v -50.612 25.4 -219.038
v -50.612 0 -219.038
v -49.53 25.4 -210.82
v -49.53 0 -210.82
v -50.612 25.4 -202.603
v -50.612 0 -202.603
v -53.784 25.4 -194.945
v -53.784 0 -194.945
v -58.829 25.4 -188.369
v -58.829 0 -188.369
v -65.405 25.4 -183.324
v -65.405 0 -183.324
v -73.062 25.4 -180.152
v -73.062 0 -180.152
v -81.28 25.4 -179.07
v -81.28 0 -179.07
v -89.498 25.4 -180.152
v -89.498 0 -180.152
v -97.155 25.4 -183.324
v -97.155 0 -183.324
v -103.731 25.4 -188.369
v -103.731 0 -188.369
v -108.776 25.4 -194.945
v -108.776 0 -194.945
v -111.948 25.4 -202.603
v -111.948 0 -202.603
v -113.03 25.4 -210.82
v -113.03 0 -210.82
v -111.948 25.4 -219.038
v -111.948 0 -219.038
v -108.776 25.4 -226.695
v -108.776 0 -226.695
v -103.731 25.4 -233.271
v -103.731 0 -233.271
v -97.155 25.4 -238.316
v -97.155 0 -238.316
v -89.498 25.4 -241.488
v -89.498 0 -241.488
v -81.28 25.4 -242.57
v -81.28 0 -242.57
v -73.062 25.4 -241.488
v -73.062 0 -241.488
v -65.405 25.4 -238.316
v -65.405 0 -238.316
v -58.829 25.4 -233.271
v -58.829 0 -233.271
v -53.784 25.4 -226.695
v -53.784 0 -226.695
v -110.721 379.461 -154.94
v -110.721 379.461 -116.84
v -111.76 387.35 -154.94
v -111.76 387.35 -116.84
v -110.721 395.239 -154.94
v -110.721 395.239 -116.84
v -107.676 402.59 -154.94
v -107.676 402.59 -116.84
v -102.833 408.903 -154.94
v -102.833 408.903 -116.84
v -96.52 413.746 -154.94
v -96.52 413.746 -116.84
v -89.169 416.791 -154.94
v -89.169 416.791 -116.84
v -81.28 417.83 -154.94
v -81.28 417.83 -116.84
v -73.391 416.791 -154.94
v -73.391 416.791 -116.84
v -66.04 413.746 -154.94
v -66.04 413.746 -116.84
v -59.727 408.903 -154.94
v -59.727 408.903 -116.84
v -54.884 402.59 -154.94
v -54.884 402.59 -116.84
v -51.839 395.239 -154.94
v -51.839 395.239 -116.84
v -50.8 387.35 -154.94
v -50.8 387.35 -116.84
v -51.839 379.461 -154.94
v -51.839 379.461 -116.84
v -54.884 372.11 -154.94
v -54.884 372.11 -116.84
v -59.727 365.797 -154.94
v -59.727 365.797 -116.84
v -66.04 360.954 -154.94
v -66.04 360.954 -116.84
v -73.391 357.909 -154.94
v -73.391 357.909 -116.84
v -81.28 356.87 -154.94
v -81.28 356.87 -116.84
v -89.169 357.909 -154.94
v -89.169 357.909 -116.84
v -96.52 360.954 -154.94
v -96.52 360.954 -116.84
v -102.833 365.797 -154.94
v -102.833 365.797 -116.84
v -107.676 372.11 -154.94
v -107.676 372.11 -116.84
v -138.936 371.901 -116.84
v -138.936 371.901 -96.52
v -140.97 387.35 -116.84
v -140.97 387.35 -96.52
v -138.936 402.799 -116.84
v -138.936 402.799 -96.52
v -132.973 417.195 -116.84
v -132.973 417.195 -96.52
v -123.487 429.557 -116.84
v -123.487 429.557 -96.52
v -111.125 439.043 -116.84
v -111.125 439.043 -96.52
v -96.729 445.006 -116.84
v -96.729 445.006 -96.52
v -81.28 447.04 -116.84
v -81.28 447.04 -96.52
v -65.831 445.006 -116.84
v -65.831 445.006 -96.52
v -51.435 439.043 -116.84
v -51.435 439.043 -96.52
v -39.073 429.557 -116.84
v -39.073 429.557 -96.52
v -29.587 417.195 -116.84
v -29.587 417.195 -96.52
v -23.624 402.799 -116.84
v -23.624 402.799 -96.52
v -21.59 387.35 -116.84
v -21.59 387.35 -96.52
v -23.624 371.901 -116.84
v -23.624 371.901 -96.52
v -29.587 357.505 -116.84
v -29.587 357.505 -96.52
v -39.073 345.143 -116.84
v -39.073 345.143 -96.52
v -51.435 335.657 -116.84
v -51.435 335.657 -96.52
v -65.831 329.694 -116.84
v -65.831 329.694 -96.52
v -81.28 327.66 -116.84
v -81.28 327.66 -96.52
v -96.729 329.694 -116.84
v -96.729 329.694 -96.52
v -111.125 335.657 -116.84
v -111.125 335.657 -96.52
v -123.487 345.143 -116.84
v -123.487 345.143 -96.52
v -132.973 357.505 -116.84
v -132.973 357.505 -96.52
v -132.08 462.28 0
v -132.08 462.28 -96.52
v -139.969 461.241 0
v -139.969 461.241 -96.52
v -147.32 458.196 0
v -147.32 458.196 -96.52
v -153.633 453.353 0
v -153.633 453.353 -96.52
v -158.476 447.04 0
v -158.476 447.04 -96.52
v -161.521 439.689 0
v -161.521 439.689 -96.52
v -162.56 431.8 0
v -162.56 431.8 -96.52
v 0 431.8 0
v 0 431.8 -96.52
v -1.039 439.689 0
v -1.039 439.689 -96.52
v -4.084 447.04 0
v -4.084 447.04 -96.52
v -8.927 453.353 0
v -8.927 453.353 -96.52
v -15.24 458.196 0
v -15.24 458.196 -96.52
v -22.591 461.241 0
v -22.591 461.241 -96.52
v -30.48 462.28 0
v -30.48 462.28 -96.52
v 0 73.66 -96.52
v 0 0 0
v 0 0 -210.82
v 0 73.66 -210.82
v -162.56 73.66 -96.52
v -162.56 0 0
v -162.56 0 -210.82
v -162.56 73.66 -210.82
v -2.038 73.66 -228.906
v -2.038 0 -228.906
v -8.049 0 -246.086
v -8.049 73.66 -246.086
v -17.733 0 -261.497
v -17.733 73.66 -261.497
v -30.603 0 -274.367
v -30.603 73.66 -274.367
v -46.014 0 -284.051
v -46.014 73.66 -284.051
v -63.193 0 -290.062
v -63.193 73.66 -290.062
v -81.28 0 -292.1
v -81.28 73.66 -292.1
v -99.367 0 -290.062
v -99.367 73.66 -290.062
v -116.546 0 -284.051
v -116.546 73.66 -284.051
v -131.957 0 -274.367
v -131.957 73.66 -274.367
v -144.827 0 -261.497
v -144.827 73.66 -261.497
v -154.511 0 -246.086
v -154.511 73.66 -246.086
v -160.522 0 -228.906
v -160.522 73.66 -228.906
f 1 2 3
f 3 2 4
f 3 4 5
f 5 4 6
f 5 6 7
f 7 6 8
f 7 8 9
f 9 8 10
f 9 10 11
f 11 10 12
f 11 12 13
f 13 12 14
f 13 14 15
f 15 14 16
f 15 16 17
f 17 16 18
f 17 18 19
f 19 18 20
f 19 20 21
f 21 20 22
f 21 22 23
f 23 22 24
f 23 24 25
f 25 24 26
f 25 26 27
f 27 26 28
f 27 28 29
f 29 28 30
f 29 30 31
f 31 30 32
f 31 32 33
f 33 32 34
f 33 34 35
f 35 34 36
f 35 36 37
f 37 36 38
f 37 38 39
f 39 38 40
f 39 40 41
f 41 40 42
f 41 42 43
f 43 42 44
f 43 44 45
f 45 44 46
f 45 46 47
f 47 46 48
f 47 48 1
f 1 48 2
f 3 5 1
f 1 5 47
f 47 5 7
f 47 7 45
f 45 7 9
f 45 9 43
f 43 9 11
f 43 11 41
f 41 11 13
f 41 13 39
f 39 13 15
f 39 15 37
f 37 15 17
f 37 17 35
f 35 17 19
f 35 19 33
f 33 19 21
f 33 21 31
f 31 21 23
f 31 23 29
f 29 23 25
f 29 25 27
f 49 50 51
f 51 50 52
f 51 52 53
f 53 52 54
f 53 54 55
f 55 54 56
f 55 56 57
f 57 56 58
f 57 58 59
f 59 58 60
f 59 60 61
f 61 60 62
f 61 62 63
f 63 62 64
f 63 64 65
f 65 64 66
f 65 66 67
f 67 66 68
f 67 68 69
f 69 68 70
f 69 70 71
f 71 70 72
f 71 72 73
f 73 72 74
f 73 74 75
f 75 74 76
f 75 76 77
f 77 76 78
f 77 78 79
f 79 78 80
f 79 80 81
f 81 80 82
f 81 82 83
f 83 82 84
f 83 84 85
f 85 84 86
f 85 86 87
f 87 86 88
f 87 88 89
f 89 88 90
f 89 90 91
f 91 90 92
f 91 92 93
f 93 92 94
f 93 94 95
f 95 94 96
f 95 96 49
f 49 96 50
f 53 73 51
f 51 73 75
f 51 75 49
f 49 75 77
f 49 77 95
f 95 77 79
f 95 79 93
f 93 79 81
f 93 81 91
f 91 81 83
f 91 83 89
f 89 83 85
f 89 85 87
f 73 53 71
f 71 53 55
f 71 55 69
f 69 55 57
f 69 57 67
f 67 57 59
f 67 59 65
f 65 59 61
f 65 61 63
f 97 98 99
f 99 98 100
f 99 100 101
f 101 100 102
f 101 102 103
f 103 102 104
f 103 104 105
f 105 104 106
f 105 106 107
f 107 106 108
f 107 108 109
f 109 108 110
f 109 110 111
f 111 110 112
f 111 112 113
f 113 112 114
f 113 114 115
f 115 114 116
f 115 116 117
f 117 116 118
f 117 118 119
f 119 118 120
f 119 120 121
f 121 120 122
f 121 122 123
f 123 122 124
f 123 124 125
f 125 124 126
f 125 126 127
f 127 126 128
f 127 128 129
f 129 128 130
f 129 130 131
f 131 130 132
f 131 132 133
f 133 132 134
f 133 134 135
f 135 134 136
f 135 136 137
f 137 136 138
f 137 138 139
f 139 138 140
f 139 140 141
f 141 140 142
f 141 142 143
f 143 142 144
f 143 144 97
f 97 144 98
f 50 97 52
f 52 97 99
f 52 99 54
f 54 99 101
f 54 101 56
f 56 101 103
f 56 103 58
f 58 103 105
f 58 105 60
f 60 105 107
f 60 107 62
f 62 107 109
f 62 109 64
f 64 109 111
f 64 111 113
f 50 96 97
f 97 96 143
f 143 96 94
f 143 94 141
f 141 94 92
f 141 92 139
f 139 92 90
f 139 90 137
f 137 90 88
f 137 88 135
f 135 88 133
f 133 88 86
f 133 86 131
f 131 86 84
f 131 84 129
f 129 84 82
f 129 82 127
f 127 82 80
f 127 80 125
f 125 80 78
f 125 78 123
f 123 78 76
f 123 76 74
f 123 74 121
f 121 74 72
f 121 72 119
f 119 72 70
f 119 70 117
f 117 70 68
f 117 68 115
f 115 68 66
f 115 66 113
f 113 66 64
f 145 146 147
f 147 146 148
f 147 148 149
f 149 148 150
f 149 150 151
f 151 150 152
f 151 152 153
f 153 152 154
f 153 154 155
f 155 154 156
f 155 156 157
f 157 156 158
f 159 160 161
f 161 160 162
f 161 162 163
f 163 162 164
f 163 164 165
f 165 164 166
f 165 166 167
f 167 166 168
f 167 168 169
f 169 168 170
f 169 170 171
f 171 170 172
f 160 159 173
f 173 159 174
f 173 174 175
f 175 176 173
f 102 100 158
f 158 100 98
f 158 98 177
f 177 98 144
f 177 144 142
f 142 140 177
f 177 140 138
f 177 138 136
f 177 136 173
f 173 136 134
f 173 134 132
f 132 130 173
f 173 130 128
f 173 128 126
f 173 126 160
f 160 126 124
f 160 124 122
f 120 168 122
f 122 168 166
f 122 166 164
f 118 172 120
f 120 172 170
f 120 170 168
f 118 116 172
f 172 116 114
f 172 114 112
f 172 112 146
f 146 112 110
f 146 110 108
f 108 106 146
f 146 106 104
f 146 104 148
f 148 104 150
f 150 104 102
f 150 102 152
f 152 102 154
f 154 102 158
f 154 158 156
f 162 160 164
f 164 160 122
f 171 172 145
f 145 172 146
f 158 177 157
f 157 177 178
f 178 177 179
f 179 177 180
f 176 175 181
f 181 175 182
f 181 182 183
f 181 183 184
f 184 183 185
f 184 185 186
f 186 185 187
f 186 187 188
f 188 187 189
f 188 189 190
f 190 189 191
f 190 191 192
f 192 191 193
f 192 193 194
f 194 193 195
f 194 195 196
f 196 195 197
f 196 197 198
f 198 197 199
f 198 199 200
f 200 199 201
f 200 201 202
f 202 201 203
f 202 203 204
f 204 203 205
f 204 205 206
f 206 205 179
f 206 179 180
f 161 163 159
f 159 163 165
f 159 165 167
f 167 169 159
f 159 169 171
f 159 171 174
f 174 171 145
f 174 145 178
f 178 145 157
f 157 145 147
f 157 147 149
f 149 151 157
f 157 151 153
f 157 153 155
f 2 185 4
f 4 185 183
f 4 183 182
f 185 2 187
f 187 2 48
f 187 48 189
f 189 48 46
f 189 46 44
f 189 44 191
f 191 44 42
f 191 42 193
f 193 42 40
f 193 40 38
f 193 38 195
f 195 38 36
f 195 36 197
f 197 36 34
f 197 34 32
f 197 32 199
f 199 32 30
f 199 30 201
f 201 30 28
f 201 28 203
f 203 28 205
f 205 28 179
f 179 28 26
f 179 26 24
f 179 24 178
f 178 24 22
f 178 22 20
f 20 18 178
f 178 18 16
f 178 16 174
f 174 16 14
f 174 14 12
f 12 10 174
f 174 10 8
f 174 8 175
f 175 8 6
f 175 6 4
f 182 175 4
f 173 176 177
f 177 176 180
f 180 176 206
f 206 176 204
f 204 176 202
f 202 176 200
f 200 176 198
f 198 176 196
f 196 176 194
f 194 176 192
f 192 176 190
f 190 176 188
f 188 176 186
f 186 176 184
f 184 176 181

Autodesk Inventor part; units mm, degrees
ref_plane "YZ Plane" through (0, 0, 0) normal (1, 0, 0) x (0, 1, 0)
ref_plane "XZ Plane" through (0, 0, 0) normal (0, 1, 0) x (-1, 0, 0)
ref_plane "XY Plane" through (0, 0, 0) normal (0, 0, 1) x (1, 0, 0)
sketch "Sketch1" plane through (0, 0, 0) normal (0, 1, 0) x (-1, 0, 0)
  line L0 (0, 0) -> (162.56, 0)
  line L1 (162.56, 0) -> (162.56, -210.82)
  line L2 (81.28, -292.1) -> (81.28, -292.1)
  line L3 (0, -210.82) -> (0, 0)
  arc A0 (81.28, -292.1) -> (162.56, -210.82) centre (81.28, -210.82) ccw
  arc A1 (0, -210.82) -> (81.28, -292.1) centre (81.28, -210.82) ccw
  point P0 (162.56, -292.1)
  point P1 (0, -292.1)
  dimension "d0" = 292.1
  dimension "d1" = 162.56
  dimension "d2" = 81.28
extrude "Extrusion1" add sketch "Sketch1" along normal blind 73.66
sketch "Sketch2" plane through (0, 73.66, 0) normal (0, 1, 0) x (1, 0, 0)
  line L0 (-162.56, 0) -> (0, 0) projected
  line L1 (0, 0) -> (0, 210.82) projected
  line L2 (-162.56, 0) -> (0, 0)
  line L3 (0, 0) -> (0, 96.52)
  line L4 (0, 96.52) -> (-162.56, 96.52)
  line L5 (-162.56, 96.52) -> (-162.56, 0)
  dimension "d23" = 114.3
extrude "Extrusion2" add sketch "Sketch2" along normal blind 388.62
sketch "Sketch3" plane through (-162.56, 0, 0) normal (0, 0, 1) x (1, 0, 0)
  line L0 (162.56, 0) -> (0, 0) projected
  line L1 (162.56, 0) -> (162.56, 462.28) projected
  line L2 (0, 0) -> (162.56, 0)
  line L3 (162.56, 0) -> (162.56, 431.8)
  line L4 (132.08, 462.28) -> (30.48, 462.28)
  line L5 (0, 431.8) -> (0, 0)
  arc A0 (30.48, 462.28) -> (0, 431.8) centre (30.48, 431.8) ccw
  arc A1 (162.56, 431.8) -> (132.08, 462.28) centre (132.08, 431.8) ccw
  dimension "d8" = 30.48
extrude "Extrusion3" cut sketch "Sketch3" against normal blind 508 keep common part
sketch "Sketch4" plane through (0, 73.66, -96.52) normal (0, 0, -1) x (-1, 0, 0)
  line L0 (132.08, 388.62) -> (30.48, 388.62) projected
  circle A0 centre (81.28, 313.69) radius 59.69
  line L1 (0, -73.66) -> (162.56, -73.66) projected
  dimension "d12" = 119.38
  dimension "d22" = 387.35
extrude "Extrusion4" add sketch "Sketch4" along normal blind 20.32
sketch "Sketch5" plane through (-81.28, 387.35, -116.84) normal (0, 0, -1) x (-1, 0, 0)
  circle A0 centre (0, 0) radius 30.48
  point P0 (-81.28, -387.35)
  dimension "d15" = 60.96
extrude "Extrusion5" add sketch "Sketch5" along normal blind 38.1
sketch "Sketch6" plane through (0, 0, 0) normal (0, -1, 0) x (1, 0, 0)
  arc A0 (-162.56, -210.82) -> (0, -210.82) centre (-81.28, -210.82) ccw projected
  circle A1 centre (-81.28, -210.82) radius 31.75
  point P0 (0, 0)
  dimension "d18" = 63.5
extrude "Extrusion6" cut sketch "Sketch6" against normal blind 25.4
properties part number "Waist Link"
